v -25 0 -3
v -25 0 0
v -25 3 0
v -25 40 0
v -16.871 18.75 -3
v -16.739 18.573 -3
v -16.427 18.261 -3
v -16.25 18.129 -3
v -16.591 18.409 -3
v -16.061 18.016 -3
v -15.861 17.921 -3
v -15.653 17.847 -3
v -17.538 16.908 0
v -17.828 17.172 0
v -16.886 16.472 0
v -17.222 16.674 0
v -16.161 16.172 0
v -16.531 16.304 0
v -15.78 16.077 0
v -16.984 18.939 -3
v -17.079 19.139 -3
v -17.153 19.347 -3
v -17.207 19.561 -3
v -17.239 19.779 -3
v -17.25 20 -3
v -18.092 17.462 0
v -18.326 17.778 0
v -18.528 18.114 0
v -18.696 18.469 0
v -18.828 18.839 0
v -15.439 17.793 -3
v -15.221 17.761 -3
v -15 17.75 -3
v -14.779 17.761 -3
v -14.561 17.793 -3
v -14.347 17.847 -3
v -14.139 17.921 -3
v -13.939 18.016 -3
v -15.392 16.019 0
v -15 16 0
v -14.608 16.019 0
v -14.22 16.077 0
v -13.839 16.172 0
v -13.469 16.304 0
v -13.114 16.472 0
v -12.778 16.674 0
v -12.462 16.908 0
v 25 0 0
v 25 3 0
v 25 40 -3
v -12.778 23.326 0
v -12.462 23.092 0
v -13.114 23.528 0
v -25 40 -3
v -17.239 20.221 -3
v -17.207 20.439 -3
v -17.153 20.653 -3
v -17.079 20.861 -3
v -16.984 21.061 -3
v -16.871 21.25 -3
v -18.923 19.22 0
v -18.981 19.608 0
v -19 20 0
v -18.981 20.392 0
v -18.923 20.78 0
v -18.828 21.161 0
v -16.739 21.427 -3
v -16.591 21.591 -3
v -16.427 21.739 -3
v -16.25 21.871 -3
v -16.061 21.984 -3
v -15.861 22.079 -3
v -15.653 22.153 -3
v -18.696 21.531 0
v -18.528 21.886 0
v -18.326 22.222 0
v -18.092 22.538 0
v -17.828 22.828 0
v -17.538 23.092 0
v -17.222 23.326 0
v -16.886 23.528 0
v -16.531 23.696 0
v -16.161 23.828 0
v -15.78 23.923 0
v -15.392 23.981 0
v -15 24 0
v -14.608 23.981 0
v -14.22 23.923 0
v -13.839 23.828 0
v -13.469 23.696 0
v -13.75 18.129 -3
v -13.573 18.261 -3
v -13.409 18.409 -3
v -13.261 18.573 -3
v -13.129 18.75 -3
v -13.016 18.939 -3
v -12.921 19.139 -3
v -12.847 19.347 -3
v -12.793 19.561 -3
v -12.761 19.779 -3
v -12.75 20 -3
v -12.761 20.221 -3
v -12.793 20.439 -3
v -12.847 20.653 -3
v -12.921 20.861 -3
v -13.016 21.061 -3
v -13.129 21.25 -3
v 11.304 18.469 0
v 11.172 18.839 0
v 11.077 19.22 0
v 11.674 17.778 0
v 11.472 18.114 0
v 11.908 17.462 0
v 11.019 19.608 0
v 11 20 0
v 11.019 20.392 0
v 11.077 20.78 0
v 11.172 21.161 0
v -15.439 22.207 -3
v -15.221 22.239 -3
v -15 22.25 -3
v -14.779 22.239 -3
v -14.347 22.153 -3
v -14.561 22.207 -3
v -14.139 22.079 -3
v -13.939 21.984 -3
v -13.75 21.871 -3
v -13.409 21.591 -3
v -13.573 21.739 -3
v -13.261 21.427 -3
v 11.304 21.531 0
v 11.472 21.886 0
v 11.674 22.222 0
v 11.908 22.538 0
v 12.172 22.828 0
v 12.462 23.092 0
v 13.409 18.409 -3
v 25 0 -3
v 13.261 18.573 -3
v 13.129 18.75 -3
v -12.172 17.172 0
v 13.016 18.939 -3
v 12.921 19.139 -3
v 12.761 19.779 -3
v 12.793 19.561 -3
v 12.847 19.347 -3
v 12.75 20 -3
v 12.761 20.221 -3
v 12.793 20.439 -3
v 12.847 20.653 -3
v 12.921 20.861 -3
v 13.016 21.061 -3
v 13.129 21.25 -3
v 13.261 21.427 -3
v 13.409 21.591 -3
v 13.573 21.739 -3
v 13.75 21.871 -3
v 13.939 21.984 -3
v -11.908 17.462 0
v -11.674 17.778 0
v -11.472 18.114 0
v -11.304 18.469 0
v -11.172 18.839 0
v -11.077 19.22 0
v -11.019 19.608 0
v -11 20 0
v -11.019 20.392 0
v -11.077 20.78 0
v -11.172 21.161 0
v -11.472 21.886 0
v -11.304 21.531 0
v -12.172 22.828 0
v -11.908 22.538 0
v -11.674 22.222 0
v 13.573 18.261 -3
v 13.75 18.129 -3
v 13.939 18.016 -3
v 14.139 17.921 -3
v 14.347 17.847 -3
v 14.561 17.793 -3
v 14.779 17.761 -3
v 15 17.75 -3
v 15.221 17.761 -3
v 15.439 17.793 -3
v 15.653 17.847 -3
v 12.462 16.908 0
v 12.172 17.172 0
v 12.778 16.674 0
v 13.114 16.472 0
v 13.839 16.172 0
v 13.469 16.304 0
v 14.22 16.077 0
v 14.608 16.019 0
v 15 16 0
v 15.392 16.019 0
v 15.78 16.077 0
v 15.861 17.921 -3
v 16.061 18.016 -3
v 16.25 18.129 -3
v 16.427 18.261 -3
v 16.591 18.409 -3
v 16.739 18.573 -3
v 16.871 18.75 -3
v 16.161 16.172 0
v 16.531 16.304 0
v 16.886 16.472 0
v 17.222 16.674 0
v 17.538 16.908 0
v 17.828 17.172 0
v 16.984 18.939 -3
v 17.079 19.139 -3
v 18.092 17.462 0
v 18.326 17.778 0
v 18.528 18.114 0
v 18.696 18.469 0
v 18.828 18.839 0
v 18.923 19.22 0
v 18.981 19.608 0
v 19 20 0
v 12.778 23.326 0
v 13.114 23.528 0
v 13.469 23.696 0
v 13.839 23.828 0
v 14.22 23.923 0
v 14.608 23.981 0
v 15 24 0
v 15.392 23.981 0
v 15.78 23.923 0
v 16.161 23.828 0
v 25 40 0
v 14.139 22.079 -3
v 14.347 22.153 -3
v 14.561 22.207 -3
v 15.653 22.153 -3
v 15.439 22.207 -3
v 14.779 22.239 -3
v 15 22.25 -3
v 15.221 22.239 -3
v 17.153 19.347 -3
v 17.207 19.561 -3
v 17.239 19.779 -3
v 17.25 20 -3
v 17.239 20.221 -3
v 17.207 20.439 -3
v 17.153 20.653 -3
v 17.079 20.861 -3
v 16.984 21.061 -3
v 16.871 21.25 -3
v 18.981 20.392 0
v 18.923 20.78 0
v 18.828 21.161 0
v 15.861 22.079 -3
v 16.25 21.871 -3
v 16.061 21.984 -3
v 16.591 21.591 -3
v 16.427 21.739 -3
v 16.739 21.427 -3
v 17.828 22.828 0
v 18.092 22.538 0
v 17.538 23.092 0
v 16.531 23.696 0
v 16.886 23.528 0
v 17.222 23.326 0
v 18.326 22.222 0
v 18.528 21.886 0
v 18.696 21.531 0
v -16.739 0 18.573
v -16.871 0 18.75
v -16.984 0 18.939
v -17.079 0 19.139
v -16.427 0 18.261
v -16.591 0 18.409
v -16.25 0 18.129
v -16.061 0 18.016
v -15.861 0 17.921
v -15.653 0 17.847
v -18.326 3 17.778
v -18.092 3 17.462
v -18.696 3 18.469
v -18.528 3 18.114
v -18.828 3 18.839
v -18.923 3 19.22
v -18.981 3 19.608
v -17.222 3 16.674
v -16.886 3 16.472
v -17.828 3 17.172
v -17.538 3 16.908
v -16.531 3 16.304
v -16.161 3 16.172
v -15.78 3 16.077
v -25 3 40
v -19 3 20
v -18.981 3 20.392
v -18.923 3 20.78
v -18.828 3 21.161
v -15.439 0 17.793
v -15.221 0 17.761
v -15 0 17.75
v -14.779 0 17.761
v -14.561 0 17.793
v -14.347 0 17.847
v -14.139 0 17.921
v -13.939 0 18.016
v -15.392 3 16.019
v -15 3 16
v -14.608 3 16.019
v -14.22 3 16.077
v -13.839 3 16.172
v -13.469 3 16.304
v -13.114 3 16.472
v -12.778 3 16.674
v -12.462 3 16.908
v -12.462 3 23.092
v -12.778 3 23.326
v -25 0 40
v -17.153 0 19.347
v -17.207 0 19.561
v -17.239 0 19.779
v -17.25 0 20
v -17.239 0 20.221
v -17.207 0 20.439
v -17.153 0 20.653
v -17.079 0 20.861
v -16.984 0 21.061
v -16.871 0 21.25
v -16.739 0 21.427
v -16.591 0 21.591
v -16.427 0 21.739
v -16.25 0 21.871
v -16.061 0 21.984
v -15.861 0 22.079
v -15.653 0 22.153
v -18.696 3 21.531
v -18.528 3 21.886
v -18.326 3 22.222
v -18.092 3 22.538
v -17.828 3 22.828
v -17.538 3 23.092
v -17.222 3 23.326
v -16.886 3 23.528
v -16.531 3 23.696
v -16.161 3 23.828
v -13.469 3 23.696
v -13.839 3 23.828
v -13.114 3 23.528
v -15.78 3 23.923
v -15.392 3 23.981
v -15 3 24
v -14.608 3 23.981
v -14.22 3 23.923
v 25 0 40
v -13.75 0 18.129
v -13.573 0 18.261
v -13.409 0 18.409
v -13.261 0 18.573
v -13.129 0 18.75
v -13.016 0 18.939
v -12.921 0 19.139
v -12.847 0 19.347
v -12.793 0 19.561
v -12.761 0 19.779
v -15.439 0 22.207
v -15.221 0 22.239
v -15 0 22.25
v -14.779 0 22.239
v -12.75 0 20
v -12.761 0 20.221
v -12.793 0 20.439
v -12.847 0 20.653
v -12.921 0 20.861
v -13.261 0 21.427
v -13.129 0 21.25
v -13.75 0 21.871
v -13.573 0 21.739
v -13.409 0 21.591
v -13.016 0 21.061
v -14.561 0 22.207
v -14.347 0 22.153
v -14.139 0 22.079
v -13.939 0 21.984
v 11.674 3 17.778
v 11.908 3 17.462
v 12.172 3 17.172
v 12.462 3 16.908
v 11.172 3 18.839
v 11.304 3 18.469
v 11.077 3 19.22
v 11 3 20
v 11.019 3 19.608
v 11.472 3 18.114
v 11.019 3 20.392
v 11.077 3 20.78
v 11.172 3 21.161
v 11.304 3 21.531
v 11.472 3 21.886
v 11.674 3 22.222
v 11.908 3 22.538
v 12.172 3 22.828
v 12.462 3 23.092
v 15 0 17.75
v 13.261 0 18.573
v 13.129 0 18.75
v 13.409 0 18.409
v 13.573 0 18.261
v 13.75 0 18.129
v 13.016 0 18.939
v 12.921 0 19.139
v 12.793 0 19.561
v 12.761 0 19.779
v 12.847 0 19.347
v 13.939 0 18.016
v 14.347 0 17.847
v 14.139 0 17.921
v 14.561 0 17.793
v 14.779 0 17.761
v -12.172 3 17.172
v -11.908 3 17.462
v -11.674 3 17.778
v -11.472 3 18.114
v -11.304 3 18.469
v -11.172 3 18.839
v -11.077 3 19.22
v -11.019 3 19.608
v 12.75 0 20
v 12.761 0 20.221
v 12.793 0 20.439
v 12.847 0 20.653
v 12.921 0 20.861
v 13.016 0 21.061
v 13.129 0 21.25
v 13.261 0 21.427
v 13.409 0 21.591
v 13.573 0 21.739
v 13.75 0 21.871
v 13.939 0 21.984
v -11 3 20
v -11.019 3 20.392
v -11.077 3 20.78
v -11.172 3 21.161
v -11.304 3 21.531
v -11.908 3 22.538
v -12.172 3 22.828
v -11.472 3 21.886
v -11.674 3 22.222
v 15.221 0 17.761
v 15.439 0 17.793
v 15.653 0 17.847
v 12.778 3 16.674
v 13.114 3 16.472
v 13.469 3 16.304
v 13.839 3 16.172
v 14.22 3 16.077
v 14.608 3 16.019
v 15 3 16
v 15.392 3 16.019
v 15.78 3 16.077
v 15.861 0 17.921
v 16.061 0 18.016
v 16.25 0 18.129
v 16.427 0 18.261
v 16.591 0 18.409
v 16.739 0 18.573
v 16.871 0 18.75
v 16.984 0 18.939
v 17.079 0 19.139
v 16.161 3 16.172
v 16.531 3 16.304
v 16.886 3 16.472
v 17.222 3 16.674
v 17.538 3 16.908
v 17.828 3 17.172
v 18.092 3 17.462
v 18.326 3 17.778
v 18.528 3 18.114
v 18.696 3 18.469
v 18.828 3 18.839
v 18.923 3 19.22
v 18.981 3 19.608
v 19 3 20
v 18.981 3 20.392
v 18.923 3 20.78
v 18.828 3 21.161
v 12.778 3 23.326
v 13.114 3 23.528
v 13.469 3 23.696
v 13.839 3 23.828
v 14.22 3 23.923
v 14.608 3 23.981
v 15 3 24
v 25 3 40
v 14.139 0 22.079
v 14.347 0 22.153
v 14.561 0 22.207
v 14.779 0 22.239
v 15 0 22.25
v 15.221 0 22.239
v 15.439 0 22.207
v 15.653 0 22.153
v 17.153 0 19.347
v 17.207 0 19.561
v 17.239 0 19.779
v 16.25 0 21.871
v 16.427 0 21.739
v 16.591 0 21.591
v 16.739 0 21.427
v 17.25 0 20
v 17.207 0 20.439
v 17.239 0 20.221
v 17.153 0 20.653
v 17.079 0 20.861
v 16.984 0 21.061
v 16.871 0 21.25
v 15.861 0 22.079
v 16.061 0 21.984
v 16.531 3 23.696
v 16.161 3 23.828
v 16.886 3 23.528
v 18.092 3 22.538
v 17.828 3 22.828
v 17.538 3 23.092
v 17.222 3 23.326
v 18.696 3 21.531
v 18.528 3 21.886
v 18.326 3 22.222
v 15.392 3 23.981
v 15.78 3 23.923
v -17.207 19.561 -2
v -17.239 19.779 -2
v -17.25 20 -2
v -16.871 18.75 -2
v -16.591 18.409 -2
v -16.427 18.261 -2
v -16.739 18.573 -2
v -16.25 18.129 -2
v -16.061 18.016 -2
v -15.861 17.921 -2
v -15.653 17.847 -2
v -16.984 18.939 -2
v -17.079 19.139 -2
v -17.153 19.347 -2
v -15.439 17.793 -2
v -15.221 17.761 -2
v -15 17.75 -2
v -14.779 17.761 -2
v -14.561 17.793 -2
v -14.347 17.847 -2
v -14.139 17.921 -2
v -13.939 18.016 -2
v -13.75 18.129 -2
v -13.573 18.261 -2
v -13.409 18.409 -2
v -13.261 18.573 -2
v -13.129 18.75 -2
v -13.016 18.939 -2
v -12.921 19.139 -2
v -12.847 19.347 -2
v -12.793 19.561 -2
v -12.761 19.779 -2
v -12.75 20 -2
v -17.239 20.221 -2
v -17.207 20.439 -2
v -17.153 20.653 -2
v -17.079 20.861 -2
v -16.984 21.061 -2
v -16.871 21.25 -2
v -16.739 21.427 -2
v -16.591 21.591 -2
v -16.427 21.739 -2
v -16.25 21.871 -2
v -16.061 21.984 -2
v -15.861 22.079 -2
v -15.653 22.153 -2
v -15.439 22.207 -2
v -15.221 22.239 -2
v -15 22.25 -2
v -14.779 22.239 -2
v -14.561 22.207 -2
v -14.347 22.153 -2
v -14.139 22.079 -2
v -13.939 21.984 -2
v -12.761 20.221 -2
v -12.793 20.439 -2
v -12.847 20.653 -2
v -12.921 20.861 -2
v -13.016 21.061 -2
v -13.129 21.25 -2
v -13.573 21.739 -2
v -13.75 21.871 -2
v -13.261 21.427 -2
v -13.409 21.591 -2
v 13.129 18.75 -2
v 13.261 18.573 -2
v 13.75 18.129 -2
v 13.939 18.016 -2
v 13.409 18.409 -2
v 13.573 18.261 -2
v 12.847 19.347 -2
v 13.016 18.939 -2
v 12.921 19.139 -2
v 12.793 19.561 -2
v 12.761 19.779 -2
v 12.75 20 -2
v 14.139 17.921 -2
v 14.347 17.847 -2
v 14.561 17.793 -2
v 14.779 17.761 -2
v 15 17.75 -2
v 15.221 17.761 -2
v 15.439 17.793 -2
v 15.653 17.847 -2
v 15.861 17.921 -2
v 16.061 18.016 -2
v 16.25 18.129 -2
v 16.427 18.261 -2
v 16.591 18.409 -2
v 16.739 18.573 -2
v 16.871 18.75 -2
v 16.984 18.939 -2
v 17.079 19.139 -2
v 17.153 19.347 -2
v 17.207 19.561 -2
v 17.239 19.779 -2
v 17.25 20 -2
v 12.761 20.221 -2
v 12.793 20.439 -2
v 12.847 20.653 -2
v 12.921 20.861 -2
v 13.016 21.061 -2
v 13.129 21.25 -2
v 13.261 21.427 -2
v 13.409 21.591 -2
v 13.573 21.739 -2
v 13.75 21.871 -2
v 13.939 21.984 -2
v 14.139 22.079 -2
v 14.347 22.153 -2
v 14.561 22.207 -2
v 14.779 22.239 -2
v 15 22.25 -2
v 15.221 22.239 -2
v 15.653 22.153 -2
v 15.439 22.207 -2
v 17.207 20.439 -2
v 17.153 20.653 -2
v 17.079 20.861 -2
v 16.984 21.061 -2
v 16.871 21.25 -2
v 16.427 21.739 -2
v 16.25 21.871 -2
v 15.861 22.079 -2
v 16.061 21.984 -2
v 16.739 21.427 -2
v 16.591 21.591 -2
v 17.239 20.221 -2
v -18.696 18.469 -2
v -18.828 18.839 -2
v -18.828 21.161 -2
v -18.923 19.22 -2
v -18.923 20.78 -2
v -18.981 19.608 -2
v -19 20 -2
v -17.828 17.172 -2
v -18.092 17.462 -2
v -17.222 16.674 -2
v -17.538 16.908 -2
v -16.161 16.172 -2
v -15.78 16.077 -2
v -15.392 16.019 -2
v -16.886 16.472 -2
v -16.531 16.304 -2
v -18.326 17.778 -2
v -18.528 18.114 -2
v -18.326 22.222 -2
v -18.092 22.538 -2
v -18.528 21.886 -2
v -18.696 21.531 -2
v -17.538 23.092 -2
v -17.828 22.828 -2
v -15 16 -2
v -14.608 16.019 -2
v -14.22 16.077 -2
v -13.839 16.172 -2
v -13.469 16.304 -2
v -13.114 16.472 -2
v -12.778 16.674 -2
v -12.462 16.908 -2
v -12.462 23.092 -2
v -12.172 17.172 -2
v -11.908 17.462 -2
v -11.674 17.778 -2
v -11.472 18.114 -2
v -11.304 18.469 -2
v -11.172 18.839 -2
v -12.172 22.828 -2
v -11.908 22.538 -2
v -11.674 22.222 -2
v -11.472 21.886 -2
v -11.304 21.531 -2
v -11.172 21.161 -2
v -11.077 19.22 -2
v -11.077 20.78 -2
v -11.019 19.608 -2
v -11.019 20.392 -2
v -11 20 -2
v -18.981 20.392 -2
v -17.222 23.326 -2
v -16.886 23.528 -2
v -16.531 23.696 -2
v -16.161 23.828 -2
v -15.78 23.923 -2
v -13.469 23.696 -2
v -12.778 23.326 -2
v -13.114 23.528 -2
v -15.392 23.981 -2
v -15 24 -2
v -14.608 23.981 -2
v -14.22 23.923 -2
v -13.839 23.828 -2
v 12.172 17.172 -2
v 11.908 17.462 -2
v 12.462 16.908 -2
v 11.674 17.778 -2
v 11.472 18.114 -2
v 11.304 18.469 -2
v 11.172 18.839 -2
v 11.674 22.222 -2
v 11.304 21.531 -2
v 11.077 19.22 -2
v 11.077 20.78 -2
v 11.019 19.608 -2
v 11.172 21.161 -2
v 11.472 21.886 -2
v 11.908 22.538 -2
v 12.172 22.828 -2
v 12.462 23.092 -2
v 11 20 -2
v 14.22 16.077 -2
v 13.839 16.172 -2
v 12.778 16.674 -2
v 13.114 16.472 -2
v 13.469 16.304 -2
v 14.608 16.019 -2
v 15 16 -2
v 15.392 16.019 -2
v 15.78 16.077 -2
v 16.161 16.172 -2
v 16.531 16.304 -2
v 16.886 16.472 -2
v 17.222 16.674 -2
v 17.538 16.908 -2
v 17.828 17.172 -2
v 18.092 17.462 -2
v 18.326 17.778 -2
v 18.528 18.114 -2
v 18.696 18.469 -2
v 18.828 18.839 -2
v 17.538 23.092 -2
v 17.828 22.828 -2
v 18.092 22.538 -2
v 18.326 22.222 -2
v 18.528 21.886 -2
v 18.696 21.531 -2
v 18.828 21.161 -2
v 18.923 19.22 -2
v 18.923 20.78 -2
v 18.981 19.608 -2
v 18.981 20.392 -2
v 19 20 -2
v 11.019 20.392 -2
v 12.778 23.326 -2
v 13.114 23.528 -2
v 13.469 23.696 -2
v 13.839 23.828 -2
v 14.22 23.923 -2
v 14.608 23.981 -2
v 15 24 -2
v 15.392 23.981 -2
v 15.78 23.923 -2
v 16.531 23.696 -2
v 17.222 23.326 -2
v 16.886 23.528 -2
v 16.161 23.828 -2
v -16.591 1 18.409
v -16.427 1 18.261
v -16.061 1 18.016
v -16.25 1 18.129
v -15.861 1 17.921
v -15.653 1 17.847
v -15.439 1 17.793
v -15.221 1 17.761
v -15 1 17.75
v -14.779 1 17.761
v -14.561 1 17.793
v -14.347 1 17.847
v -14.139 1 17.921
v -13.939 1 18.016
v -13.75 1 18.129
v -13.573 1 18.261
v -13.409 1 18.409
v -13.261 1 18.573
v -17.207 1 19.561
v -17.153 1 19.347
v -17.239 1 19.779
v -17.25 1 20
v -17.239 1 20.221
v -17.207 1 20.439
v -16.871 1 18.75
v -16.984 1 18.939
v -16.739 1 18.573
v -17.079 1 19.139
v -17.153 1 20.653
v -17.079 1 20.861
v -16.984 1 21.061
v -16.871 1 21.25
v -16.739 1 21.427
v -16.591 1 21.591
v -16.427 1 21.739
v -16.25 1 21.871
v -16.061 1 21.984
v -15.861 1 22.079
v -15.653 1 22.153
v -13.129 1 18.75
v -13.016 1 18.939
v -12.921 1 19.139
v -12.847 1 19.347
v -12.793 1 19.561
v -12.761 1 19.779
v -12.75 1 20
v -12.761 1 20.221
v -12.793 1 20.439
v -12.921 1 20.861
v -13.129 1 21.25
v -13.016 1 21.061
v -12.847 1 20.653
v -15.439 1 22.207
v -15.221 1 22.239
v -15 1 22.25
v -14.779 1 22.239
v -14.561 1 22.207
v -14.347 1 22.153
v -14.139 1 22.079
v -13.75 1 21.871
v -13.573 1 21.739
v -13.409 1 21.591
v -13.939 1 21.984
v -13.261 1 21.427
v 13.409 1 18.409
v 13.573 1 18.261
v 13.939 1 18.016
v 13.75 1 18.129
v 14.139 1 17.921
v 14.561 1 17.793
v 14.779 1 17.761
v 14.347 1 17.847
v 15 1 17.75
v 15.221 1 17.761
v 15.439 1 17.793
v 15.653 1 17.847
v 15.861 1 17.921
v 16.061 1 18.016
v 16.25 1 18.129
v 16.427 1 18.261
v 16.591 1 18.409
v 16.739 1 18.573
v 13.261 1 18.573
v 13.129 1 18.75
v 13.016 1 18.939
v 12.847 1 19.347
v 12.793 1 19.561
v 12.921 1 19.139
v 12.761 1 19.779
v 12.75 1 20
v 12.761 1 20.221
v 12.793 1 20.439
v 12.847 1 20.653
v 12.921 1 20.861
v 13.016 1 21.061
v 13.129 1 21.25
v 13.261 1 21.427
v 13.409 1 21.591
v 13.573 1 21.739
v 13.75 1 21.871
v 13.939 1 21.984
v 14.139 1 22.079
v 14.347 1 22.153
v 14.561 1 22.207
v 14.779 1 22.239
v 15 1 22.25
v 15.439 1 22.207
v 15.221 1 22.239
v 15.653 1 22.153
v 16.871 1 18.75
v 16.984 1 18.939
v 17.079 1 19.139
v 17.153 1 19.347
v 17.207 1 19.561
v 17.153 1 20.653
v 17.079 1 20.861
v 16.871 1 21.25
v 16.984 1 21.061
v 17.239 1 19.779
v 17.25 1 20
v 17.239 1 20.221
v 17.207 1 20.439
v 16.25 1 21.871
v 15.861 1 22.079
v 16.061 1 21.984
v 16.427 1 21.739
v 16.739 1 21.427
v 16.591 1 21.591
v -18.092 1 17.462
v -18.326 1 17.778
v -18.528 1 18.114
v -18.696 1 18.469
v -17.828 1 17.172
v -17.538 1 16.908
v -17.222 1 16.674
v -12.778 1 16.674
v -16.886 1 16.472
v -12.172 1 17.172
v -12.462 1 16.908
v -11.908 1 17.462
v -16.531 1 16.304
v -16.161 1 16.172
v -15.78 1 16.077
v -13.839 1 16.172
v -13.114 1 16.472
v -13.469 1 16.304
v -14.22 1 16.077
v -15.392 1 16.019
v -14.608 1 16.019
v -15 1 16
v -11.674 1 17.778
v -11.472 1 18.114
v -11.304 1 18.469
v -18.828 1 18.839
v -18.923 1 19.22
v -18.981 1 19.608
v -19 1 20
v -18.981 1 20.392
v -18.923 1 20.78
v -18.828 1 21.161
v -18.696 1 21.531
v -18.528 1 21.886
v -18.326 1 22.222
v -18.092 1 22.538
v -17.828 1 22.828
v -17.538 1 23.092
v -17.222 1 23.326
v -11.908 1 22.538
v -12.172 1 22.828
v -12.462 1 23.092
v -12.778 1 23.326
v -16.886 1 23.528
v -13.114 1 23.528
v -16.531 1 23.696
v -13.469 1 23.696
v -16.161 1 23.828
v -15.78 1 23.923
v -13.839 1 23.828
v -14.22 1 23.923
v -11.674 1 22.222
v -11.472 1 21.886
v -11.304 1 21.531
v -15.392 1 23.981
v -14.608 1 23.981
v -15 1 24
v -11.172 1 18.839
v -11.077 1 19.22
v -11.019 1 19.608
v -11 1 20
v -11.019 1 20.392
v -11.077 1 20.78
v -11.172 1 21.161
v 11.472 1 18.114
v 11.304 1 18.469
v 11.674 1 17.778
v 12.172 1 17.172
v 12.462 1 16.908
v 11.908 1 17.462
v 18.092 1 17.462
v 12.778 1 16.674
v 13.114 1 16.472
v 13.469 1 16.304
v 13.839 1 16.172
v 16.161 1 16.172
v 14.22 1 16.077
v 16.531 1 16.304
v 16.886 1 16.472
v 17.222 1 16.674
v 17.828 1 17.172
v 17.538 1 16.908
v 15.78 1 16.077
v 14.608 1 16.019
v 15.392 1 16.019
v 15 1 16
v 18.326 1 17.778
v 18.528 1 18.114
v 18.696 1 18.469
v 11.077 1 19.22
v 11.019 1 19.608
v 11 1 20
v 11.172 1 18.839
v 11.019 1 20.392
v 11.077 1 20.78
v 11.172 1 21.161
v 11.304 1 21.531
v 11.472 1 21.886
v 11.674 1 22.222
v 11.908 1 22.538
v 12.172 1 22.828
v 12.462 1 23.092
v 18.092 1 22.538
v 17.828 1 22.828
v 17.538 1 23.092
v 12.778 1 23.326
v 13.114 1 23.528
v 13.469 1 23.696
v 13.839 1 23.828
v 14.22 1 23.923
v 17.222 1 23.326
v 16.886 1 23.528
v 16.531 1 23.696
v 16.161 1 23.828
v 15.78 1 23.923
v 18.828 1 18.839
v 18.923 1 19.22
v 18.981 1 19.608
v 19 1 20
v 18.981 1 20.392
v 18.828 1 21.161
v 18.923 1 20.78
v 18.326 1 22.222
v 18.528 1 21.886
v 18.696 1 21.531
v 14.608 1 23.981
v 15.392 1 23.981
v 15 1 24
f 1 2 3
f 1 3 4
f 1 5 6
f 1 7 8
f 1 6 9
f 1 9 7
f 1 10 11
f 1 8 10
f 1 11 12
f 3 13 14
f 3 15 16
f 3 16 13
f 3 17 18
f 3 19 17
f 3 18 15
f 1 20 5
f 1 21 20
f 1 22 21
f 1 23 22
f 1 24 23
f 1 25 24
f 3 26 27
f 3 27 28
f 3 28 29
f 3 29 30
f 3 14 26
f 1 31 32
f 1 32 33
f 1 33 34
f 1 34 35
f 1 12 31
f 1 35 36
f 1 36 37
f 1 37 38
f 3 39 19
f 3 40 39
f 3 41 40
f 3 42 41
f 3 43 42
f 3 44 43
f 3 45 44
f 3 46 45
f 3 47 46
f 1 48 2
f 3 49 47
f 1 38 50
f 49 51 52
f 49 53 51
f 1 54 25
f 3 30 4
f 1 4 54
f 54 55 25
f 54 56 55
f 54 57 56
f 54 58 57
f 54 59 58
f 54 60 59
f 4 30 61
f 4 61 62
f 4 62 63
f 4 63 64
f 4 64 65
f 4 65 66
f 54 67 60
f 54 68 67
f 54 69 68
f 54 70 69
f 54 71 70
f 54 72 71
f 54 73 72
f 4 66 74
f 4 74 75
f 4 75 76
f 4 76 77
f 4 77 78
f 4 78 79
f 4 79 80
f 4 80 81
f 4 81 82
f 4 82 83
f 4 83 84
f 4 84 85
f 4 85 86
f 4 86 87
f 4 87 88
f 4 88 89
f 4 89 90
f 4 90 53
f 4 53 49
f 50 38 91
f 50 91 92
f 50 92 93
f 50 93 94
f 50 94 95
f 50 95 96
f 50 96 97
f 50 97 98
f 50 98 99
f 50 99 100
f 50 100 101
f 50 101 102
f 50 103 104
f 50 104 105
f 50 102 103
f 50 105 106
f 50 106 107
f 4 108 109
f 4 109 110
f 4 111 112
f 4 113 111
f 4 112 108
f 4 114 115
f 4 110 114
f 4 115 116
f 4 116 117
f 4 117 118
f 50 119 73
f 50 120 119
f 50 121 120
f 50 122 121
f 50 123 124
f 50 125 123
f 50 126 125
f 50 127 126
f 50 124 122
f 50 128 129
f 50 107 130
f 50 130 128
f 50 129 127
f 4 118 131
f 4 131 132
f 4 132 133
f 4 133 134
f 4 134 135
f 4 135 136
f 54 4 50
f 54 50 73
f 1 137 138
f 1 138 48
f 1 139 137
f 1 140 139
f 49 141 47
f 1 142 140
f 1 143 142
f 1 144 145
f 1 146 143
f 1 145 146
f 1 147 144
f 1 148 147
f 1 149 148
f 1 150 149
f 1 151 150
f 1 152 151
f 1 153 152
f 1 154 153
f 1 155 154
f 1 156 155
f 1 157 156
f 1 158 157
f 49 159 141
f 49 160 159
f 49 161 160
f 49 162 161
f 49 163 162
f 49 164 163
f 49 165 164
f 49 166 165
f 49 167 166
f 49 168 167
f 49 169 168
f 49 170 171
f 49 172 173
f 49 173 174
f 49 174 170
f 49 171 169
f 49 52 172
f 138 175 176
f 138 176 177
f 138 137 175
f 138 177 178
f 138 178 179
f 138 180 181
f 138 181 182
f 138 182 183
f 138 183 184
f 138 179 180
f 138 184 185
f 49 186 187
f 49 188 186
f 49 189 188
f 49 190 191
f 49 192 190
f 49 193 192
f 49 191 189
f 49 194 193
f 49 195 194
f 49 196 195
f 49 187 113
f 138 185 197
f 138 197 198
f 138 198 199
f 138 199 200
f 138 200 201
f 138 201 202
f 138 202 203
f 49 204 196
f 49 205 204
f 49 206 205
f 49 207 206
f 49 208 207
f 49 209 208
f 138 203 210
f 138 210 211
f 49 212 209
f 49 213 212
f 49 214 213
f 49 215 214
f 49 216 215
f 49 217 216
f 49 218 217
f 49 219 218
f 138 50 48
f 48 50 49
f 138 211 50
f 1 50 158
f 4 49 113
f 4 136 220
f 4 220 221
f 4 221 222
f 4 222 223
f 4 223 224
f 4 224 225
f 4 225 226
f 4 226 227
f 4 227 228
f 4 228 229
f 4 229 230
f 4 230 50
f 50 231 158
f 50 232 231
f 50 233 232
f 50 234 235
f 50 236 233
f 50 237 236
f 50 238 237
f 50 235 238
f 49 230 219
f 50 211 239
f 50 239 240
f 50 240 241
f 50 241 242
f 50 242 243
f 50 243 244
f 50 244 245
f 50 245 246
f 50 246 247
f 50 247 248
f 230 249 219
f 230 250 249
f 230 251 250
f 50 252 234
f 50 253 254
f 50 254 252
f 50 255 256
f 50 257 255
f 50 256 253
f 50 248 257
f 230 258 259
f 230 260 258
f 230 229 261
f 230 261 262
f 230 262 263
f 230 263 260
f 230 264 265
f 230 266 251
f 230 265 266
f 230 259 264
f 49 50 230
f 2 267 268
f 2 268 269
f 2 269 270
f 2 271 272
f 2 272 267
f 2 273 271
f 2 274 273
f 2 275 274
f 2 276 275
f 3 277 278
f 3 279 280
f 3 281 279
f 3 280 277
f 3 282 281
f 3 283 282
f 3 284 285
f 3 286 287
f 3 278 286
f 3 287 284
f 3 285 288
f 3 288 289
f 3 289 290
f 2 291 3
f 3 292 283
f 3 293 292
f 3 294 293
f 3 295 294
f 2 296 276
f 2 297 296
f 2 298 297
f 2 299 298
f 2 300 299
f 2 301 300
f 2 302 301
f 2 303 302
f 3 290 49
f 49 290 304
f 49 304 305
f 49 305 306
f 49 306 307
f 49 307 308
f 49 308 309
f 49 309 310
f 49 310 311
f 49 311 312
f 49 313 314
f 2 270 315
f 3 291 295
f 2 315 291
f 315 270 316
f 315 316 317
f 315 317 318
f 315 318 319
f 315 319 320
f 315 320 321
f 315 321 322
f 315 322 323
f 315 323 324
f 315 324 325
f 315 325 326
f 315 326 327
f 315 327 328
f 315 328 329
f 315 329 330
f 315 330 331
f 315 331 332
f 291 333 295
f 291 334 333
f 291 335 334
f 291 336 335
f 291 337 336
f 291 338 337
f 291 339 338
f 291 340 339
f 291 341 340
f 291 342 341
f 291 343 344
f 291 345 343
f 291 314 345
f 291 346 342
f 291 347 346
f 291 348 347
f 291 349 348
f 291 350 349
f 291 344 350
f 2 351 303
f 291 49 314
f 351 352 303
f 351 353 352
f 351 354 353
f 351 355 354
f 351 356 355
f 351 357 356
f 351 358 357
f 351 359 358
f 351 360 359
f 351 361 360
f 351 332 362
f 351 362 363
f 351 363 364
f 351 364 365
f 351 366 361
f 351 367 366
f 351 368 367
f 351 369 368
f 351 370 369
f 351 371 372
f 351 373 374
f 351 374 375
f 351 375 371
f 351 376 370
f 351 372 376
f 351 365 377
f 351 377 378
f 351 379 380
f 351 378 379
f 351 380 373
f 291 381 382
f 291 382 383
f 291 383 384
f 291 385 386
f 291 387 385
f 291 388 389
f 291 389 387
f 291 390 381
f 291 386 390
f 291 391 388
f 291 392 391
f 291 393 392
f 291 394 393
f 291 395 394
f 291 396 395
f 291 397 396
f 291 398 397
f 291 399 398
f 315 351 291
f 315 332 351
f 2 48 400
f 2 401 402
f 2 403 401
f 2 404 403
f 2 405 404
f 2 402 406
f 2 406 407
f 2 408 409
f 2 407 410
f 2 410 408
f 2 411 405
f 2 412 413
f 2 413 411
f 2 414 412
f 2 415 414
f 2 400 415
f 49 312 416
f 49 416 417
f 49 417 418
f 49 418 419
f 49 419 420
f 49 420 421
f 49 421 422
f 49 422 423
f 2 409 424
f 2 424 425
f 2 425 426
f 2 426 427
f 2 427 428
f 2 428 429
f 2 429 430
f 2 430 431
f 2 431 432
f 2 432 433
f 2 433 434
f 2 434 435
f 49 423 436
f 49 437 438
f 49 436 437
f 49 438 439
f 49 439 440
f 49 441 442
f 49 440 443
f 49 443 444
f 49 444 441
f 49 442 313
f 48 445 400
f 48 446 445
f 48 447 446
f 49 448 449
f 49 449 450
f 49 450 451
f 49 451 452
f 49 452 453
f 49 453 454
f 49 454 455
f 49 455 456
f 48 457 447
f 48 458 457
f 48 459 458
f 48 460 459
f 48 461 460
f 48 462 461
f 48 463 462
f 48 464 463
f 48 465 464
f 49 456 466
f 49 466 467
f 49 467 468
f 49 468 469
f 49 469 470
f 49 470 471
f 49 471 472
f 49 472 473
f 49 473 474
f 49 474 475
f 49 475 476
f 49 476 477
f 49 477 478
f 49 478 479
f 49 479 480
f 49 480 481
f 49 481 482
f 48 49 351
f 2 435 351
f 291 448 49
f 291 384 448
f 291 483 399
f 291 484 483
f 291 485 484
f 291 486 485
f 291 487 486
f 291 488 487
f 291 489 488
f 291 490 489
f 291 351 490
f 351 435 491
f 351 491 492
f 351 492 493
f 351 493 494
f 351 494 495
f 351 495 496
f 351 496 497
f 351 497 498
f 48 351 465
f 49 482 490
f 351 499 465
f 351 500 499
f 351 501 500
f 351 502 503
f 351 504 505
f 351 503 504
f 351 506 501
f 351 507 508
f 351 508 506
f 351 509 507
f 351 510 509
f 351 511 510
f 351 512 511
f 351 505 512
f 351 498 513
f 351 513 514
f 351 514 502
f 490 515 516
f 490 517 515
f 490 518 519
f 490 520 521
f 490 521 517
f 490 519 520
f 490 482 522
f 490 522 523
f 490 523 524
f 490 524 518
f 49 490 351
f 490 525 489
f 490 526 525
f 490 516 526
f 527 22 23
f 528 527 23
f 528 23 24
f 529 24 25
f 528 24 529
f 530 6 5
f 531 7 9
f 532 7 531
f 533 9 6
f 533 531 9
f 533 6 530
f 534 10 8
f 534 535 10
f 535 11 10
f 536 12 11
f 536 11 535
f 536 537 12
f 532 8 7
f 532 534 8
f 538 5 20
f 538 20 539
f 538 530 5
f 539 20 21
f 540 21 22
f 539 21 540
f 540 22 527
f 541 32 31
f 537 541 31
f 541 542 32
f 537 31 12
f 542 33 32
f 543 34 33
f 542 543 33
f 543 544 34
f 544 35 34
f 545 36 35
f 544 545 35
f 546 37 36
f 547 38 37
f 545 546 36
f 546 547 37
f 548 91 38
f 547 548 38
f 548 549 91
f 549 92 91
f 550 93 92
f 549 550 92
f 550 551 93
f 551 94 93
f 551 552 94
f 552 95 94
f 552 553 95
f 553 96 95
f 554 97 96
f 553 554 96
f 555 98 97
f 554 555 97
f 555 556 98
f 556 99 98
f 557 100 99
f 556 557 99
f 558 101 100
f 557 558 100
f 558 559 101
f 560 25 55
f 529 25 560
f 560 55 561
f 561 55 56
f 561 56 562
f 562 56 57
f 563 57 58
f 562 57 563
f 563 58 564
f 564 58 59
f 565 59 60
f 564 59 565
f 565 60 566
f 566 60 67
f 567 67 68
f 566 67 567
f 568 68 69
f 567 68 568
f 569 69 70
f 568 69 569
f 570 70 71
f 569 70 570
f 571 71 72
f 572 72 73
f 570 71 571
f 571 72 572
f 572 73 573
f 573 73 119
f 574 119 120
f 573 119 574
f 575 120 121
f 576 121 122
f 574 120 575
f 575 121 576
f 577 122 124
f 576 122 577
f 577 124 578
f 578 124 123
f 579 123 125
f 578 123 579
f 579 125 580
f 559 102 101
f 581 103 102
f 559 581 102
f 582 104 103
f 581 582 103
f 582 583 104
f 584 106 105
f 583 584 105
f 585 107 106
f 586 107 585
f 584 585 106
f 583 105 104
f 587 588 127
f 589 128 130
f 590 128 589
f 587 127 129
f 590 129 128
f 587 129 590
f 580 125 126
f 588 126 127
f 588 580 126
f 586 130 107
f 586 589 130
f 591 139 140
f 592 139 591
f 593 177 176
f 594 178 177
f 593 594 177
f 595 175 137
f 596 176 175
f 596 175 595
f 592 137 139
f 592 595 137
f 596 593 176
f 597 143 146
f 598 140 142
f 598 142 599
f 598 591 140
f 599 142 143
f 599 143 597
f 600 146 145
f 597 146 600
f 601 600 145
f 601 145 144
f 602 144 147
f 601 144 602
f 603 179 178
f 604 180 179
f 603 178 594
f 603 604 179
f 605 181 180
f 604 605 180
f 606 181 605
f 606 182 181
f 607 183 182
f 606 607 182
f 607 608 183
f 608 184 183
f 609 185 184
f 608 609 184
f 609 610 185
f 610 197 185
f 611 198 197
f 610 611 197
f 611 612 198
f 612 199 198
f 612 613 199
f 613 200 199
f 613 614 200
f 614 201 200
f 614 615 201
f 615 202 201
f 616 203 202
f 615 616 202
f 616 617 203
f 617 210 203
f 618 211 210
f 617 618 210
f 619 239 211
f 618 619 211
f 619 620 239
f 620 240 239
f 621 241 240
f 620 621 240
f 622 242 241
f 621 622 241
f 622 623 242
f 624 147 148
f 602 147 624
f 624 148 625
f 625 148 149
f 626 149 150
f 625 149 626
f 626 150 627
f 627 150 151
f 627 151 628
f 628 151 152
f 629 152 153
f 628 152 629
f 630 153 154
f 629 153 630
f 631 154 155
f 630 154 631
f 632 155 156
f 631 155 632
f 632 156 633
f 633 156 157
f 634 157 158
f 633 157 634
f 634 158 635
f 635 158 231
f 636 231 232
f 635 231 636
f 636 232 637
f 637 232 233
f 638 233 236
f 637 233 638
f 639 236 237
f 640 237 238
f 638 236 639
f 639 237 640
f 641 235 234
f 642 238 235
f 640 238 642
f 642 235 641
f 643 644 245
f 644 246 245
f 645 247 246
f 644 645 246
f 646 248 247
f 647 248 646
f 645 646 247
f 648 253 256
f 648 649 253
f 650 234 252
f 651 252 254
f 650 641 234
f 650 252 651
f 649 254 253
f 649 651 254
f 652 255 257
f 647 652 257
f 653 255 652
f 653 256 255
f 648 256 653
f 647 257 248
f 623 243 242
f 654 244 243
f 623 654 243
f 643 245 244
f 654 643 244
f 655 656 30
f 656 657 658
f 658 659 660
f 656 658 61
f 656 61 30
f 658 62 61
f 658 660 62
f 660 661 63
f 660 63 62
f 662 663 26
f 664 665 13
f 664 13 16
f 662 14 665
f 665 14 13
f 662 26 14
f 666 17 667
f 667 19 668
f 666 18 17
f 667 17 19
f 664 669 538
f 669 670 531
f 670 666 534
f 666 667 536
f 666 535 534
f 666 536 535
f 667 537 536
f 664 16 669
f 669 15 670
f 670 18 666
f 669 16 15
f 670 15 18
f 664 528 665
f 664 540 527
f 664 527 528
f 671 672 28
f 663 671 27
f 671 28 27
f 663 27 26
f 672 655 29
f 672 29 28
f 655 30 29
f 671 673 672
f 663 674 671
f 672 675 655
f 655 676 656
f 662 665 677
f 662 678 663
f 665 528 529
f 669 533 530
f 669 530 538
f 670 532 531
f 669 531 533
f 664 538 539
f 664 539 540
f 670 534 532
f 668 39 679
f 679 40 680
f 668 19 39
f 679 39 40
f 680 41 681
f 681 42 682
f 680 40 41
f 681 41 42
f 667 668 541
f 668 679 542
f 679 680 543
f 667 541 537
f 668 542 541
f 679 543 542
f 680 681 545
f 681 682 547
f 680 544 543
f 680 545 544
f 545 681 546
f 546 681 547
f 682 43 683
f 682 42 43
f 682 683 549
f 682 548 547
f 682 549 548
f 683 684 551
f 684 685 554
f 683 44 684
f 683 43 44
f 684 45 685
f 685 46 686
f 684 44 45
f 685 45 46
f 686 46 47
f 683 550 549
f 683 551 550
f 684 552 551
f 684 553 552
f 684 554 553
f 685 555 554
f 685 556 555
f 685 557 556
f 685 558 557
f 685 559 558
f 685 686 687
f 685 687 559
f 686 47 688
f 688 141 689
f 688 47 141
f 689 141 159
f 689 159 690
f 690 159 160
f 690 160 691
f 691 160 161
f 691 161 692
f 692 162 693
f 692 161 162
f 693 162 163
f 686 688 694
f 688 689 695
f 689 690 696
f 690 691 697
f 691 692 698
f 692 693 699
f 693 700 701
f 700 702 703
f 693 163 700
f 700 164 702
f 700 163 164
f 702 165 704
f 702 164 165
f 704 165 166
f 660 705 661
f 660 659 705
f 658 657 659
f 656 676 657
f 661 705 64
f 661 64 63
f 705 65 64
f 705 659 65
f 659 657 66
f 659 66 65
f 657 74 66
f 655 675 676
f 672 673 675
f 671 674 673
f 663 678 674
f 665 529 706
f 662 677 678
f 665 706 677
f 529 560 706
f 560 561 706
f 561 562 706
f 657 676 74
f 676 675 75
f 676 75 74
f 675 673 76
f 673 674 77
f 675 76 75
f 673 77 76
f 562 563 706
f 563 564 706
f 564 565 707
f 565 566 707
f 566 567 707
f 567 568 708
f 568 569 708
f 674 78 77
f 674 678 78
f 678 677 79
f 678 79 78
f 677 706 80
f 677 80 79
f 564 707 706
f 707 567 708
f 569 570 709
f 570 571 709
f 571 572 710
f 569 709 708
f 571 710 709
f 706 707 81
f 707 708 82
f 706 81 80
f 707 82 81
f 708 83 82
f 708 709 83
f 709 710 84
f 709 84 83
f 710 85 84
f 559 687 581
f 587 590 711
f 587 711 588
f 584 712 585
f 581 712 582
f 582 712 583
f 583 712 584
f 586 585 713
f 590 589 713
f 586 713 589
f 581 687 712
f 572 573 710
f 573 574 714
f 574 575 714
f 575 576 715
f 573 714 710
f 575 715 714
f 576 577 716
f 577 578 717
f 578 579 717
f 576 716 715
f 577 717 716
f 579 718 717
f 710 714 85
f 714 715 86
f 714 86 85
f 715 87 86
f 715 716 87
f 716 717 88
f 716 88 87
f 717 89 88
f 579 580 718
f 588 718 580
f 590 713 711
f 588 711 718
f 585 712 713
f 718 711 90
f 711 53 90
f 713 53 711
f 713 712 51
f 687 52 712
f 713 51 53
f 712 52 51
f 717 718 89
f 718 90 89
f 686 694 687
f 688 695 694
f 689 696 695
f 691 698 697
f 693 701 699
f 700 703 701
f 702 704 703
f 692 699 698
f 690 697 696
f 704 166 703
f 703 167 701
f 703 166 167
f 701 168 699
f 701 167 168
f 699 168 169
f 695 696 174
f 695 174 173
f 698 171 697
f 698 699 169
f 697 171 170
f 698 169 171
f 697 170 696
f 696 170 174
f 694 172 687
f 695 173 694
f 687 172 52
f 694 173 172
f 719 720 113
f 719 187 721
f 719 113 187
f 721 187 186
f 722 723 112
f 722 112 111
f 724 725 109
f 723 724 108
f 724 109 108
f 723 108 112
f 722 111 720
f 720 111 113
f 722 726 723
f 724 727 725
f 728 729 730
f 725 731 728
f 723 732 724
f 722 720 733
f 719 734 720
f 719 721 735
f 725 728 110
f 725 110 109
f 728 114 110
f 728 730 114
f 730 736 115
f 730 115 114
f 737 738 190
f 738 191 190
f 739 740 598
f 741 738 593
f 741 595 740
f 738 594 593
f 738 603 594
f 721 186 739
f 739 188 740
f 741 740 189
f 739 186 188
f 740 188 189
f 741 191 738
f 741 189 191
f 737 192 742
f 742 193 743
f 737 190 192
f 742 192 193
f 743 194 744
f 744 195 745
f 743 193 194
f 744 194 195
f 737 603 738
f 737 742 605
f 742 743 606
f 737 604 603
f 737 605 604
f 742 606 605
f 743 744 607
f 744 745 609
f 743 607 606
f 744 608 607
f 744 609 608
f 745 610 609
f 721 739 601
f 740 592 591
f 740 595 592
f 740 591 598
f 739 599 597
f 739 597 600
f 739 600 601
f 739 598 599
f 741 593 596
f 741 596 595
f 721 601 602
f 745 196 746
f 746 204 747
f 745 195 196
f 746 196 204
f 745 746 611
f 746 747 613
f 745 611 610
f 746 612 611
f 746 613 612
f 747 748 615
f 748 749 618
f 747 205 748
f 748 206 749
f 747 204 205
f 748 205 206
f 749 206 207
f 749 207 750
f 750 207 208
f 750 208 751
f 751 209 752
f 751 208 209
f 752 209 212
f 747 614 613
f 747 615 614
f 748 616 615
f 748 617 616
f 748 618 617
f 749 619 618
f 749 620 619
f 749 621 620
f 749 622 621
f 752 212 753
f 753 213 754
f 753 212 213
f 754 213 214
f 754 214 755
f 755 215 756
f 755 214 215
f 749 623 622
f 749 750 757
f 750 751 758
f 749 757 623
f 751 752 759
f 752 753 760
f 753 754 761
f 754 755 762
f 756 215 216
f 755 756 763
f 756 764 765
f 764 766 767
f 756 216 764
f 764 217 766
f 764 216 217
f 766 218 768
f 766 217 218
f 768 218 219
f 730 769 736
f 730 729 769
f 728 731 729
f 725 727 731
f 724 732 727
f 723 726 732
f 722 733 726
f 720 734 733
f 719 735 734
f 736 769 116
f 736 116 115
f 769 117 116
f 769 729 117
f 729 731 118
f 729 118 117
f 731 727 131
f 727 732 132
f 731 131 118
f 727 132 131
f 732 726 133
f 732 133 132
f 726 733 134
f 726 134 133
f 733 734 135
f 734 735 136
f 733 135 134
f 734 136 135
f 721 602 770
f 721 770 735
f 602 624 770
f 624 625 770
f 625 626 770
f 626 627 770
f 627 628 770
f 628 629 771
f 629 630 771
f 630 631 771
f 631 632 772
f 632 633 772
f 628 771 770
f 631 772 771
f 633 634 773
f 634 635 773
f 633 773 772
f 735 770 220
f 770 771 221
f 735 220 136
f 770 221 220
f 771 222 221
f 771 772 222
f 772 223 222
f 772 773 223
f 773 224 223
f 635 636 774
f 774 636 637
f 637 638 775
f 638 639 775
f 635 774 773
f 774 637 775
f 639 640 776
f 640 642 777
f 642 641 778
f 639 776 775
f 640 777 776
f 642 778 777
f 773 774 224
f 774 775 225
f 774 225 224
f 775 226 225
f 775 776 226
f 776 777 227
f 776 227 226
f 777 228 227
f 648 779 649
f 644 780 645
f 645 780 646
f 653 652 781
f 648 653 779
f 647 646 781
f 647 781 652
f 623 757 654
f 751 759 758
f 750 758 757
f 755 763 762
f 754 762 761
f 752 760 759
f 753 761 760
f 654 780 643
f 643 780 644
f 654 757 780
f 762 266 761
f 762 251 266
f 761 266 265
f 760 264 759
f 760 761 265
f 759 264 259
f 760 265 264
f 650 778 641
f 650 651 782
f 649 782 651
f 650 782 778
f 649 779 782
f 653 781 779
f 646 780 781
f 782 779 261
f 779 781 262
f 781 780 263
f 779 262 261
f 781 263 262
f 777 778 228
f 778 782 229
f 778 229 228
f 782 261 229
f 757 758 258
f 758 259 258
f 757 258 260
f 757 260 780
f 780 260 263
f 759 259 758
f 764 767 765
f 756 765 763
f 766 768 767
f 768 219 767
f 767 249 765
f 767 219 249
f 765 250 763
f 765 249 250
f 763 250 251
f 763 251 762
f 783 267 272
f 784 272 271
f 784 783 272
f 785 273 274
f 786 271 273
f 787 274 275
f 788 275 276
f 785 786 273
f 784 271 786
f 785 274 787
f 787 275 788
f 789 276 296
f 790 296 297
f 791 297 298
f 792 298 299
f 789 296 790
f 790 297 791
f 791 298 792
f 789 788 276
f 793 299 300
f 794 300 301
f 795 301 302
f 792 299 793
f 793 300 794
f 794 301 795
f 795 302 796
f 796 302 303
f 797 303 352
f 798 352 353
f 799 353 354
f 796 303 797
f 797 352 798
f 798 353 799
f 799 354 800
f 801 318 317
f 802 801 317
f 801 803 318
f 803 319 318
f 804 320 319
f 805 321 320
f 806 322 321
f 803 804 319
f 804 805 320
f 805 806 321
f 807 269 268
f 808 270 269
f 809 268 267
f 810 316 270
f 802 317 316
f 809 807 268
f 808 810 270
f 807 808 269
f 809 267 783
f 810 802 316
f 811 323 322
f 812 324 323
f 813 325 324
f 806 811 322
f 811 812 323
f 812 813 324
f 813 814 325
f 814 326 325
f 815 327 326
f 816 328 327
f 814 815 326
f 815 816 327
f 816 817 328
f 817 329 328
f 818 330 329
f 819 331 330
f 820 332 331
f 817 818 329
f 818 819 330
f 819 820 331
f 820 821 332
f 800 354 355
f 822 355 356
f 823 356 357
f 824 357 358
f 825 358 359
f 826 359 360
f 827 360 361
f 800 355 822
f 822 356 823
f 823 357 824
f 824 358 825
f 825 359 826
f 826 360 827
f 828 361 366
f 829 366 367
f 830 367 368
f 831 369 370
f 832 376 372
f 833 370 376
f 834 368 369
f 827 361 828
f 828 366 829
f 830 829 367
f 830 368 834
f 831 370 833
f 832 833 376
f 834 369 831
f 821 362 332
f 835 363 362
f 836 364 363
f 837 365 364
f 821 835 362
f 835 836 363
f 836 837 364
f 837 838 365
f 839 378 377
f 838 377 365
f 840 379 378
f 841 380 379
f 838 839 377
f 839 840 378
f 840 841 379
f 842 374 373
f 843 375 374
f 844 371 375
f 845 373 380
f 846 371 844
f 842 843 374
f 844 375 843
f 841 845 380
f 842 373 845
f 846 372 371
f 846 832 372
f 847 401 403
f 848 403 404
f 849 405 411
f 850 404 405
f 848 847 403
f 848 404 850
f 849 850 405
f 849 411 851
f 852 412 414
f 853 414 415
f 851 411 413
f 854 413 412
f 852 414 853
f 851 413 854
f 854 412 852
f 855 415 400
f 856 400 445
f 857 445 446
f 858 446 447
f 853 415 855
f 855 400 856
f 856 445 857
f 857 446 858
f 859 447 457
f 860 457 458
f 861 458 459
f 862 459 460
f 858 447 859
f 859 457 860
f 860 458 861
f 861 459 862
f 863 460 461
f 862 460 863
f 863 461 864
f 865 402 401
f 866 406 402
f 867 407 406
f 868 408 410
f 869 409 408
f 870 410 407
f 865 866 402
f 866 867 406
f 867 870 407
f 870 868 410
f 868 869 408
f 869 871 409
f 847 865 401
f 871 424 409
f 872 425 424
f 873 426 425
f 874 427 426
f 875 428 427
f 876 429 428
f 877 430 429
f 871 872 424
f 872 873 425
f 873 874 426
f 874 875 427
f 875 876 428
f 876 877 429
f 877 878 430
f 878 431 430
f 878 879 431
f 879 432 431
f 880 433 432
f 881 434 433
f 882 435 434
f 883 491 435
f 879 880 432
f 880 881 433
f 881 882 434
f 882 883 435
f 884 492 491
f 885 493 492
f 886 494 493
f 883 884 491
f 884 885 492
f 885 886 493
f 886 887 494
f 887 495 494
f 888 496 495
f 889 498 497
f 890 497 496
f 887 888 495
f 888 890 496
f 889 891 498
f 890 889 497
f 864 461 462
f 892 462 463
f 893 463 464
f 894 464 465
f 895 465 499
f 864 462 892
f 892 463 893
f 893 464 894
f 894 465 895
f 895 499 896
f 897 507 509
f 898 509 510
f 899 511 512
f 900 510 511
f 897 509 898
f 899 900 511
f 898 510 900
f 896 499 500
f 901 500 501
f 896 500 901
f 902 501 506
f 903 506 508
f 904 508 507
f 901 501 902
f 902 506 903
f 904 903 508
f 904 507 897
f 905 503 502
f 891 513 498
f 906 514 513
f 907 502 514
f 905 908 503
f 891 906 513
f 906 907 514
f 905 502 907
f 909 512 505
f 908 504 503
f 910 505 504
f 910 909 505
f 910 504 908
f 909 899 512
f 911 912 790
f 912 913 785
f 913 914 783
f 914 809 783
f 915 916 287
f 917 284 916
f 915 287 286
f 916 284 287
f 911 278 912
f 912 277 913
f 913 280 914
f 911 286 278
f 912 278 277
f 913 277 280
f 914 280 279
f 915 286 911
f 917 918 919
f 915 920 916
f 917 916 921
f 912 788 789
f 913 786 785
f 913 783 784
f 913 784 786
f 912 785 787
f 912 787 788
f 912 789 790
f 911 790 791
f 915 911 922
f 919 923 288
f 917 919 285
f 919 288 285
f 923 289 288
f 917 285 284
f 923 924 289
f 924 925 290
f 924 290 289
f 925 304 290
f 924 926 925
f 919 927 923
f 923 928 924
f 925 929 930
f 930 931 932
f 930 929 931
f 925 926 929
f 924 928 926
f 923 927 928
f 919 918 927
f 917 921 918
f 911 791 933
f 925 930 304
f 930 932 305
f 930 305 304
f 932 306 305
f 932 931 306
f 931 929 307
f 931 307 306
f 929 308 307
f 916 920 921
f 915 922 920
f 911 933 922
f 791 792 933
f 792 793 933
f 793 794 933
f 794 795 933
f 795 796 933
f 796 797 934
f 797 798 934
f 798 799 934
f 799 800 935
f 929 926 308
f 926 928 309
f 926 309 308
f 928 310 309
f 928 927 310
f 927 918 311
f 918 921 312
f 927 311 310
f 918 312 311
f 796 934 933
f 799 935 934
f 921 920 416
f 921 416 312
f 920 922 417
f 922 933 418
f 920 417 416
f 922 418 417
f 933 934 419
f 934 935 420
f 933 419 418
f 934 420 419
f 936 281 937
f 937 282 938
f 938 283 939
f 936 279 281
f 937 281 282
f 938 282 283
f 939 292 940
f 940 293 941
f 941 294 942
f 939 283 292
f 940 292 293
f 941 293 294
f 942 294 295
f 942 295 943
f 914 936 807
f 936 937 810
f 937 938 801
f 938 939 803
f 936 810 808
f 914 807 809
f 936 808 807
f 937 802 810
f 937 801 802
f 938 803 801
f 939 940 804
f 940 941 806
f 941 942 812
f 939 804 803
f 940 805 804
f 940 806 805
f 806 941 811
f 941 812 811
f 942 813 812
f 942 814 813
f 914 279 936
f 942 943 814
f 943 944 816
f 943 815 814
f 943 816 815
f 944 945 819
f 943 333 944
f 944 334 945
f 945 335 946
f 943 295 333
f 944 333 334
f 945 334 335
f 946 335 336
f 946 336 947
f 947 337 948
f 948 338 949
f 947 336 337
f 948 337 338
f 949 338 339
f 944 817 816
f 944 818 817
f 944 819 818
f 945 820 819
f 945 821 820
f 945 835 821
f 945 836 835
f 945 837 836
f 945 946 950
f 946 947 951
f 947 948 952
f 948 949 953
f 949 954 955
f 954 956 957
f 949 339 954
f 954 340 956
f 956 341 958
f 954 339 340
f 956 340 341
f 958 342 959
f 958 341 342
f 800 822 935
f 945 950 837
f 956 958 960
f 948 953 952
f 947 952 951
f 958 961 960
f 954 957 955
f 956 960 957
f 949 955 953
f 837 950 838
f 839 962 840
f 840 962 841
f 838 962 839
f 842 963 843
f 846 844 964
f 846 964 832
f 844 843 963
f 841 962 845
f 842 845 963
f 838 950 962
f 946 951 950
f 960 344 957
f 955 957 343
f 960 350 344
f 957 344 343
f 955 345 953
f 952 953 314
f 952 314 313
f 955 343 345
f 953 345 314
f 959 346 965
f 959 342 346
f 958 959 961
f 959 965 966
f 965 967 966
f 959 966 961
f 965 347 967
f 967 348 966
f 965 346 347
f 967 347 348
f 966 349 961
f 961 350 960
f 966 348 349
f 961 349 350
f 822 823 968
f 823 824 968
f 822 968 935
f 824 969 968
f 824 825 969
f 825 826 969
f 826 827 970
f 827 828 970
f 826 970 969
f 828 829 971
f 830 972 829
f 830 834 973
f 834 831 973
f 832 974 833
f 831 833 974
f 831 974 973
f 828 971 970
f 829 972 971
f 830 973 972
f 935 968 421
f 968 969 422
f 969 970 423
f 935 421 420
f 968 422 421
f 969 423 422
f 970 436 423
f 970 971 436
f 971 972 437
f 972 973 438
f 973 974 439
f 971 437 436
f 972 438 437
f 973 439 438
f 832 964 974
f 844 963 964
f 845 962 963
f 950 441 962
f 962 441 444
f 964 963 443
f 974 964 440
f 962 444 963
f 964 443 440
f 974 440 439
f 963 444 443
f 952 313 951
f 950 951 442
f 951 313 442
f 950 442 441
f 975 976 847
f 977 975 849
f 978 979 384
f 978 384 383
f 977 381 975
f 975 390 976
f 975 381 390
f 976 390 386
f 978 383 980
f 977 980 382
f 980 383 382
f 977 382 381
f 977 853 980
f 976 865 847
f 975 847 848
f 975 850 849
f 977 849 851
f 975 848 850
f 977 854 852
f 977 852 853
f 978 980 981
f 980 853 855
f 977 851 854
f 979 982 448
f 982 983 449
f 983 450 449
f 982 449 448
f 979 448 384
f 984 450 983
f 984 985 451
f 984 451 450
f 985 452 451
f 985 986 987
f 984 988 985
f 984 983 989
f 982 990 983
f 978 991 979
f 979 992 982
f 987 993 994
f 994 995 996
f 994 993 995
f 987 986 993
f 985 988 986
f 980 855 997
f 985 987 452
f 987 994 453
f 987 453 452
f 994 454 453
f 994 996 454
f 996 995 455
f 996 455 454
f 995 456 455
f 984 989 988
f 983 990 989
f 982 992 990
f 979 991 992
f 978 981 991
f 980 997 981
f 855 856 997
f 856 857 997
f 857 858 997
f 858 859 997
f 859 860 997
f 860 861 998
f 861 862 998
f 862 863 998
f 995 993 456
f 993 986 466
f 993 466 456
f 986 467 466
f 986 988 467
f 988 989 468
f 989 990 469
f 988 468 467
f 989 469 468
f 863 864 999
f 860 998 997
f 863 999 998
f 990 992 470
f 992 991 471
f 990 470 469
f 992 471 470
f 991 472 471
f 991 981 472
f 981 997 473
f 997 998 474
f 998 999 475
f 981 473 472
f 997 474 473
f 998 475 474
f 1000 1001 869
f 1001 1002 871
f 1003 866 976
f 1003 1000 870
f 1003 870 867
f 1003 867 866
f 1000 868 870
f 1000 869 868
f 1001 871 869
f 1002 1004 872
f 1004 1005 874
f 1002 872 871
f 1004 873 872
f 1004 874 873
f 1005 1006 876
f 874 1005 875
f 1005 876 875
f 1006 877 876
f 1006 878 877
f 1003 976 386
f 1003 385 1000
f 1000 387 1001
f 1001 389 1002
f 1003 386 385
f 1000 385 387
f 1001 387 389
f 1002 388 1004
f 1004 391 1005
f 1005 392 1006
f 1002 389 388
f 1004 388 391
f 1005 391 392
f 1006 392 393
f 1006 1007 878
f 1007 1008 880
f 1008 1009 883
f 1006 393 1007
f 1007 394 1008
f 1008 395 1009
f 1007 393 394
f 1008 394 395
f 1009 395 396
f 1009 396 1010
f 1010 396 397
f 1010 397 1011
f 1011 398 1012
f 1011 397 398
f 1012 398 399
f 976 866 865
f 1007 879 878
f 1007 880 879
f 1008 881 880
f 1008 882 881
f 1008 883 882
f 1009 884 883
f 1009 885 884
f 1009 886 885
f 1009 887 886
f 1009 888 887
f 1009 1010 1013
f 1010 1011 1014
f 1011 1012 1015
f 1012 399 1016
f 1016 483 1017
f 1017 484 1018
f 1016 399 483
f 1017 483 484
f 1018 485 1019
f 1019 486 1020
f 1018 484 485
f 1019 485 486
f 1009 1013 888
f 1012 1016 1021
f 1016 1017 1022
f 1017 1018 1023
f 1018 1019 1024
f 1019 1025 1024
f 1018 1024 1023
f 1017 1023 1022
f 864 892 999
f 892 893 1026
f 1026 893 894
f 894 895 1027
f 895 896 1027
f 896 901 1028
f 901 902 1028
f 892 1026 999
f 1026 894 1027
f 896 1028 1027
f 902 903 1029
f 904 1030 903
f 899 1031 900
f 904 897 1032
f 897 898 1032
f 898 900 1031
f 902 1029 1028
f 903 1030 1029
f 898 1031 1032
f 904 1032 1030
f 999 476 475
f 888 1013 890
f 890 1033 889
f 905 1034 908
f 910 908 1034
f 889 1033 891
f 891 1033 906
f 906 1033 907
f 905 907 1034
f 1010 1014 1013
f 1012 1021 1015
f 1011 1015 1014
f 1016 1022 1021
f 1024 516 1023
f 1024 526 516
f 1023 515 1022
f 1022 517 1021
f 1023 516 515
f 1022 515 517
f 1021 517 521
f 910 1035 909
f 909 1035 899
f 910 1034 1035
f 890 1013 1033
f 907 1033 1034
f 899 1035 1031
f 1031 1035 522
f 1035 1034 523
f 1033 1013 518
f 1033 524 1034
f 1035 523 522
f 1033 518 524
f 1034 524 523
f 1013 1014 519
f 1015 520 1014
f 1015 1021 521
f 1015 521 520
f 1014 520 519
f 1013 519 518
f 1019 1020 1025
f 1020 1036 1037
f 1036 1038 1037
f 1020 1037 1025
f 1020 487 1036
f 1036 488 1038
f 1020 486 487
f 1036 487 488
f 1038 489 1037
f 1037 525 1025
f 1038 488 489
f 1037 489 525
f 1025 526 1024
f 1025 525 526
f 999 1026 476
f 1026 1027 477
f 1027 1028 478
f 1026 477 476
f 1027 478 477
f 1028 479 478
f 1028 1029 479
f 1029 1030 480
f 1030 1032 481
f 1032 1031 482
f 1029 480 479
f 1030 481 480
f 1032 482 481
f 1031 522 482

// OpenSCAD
width = 50;
depth = 40;
height = 40;
thickness = 3;

hole_d = 4.5;
counter_d = 8;
counter_depth = 2;
edge_offset = 10;

hole_offset_x = width / 2 - edge_offset;
hole_center_y = depth / 2;
hole_center_z = height / 2;

$fn = 64;

module countersunk_hole_z() {
    translate([0, 0, -thickness - 0.2])
        cylinder(d = hole_d, h = thickness + 0.4);
    translate([0, 0, -counter_depth])
        cylinder(d = counter_d, h = counter_depth + 0.1);
}

module countersunk_hole_y() {
    translate([0, -0.1, 0])
        rotate([-90, 0, 0])
            cylinder(d = hole_d, h = thickness + 0.4);
    translate([0, thickness - counter_depth, 0])
        rotate([-90, 0, 0])
            cylinder(d = counter_d, h = counter_depth + 0.1);
}

difference() {
    union() {
        translate([-width / 2, 0, -thickness])
            cube([width, depth, thickness]);
        translate([-width / 2, 0, 0])
            cube([width, thickness, height]);
    }

    for (x = [-hole_offset_x, hole_offset_x])
        translate([x, hole_center_y, 0])
            countersunk_hole_z();

    for (x = [-hole_offset_x, hole_offset_x])
        translate([x, 0, hole_center_z])
            countersunk_hole_y();
}
